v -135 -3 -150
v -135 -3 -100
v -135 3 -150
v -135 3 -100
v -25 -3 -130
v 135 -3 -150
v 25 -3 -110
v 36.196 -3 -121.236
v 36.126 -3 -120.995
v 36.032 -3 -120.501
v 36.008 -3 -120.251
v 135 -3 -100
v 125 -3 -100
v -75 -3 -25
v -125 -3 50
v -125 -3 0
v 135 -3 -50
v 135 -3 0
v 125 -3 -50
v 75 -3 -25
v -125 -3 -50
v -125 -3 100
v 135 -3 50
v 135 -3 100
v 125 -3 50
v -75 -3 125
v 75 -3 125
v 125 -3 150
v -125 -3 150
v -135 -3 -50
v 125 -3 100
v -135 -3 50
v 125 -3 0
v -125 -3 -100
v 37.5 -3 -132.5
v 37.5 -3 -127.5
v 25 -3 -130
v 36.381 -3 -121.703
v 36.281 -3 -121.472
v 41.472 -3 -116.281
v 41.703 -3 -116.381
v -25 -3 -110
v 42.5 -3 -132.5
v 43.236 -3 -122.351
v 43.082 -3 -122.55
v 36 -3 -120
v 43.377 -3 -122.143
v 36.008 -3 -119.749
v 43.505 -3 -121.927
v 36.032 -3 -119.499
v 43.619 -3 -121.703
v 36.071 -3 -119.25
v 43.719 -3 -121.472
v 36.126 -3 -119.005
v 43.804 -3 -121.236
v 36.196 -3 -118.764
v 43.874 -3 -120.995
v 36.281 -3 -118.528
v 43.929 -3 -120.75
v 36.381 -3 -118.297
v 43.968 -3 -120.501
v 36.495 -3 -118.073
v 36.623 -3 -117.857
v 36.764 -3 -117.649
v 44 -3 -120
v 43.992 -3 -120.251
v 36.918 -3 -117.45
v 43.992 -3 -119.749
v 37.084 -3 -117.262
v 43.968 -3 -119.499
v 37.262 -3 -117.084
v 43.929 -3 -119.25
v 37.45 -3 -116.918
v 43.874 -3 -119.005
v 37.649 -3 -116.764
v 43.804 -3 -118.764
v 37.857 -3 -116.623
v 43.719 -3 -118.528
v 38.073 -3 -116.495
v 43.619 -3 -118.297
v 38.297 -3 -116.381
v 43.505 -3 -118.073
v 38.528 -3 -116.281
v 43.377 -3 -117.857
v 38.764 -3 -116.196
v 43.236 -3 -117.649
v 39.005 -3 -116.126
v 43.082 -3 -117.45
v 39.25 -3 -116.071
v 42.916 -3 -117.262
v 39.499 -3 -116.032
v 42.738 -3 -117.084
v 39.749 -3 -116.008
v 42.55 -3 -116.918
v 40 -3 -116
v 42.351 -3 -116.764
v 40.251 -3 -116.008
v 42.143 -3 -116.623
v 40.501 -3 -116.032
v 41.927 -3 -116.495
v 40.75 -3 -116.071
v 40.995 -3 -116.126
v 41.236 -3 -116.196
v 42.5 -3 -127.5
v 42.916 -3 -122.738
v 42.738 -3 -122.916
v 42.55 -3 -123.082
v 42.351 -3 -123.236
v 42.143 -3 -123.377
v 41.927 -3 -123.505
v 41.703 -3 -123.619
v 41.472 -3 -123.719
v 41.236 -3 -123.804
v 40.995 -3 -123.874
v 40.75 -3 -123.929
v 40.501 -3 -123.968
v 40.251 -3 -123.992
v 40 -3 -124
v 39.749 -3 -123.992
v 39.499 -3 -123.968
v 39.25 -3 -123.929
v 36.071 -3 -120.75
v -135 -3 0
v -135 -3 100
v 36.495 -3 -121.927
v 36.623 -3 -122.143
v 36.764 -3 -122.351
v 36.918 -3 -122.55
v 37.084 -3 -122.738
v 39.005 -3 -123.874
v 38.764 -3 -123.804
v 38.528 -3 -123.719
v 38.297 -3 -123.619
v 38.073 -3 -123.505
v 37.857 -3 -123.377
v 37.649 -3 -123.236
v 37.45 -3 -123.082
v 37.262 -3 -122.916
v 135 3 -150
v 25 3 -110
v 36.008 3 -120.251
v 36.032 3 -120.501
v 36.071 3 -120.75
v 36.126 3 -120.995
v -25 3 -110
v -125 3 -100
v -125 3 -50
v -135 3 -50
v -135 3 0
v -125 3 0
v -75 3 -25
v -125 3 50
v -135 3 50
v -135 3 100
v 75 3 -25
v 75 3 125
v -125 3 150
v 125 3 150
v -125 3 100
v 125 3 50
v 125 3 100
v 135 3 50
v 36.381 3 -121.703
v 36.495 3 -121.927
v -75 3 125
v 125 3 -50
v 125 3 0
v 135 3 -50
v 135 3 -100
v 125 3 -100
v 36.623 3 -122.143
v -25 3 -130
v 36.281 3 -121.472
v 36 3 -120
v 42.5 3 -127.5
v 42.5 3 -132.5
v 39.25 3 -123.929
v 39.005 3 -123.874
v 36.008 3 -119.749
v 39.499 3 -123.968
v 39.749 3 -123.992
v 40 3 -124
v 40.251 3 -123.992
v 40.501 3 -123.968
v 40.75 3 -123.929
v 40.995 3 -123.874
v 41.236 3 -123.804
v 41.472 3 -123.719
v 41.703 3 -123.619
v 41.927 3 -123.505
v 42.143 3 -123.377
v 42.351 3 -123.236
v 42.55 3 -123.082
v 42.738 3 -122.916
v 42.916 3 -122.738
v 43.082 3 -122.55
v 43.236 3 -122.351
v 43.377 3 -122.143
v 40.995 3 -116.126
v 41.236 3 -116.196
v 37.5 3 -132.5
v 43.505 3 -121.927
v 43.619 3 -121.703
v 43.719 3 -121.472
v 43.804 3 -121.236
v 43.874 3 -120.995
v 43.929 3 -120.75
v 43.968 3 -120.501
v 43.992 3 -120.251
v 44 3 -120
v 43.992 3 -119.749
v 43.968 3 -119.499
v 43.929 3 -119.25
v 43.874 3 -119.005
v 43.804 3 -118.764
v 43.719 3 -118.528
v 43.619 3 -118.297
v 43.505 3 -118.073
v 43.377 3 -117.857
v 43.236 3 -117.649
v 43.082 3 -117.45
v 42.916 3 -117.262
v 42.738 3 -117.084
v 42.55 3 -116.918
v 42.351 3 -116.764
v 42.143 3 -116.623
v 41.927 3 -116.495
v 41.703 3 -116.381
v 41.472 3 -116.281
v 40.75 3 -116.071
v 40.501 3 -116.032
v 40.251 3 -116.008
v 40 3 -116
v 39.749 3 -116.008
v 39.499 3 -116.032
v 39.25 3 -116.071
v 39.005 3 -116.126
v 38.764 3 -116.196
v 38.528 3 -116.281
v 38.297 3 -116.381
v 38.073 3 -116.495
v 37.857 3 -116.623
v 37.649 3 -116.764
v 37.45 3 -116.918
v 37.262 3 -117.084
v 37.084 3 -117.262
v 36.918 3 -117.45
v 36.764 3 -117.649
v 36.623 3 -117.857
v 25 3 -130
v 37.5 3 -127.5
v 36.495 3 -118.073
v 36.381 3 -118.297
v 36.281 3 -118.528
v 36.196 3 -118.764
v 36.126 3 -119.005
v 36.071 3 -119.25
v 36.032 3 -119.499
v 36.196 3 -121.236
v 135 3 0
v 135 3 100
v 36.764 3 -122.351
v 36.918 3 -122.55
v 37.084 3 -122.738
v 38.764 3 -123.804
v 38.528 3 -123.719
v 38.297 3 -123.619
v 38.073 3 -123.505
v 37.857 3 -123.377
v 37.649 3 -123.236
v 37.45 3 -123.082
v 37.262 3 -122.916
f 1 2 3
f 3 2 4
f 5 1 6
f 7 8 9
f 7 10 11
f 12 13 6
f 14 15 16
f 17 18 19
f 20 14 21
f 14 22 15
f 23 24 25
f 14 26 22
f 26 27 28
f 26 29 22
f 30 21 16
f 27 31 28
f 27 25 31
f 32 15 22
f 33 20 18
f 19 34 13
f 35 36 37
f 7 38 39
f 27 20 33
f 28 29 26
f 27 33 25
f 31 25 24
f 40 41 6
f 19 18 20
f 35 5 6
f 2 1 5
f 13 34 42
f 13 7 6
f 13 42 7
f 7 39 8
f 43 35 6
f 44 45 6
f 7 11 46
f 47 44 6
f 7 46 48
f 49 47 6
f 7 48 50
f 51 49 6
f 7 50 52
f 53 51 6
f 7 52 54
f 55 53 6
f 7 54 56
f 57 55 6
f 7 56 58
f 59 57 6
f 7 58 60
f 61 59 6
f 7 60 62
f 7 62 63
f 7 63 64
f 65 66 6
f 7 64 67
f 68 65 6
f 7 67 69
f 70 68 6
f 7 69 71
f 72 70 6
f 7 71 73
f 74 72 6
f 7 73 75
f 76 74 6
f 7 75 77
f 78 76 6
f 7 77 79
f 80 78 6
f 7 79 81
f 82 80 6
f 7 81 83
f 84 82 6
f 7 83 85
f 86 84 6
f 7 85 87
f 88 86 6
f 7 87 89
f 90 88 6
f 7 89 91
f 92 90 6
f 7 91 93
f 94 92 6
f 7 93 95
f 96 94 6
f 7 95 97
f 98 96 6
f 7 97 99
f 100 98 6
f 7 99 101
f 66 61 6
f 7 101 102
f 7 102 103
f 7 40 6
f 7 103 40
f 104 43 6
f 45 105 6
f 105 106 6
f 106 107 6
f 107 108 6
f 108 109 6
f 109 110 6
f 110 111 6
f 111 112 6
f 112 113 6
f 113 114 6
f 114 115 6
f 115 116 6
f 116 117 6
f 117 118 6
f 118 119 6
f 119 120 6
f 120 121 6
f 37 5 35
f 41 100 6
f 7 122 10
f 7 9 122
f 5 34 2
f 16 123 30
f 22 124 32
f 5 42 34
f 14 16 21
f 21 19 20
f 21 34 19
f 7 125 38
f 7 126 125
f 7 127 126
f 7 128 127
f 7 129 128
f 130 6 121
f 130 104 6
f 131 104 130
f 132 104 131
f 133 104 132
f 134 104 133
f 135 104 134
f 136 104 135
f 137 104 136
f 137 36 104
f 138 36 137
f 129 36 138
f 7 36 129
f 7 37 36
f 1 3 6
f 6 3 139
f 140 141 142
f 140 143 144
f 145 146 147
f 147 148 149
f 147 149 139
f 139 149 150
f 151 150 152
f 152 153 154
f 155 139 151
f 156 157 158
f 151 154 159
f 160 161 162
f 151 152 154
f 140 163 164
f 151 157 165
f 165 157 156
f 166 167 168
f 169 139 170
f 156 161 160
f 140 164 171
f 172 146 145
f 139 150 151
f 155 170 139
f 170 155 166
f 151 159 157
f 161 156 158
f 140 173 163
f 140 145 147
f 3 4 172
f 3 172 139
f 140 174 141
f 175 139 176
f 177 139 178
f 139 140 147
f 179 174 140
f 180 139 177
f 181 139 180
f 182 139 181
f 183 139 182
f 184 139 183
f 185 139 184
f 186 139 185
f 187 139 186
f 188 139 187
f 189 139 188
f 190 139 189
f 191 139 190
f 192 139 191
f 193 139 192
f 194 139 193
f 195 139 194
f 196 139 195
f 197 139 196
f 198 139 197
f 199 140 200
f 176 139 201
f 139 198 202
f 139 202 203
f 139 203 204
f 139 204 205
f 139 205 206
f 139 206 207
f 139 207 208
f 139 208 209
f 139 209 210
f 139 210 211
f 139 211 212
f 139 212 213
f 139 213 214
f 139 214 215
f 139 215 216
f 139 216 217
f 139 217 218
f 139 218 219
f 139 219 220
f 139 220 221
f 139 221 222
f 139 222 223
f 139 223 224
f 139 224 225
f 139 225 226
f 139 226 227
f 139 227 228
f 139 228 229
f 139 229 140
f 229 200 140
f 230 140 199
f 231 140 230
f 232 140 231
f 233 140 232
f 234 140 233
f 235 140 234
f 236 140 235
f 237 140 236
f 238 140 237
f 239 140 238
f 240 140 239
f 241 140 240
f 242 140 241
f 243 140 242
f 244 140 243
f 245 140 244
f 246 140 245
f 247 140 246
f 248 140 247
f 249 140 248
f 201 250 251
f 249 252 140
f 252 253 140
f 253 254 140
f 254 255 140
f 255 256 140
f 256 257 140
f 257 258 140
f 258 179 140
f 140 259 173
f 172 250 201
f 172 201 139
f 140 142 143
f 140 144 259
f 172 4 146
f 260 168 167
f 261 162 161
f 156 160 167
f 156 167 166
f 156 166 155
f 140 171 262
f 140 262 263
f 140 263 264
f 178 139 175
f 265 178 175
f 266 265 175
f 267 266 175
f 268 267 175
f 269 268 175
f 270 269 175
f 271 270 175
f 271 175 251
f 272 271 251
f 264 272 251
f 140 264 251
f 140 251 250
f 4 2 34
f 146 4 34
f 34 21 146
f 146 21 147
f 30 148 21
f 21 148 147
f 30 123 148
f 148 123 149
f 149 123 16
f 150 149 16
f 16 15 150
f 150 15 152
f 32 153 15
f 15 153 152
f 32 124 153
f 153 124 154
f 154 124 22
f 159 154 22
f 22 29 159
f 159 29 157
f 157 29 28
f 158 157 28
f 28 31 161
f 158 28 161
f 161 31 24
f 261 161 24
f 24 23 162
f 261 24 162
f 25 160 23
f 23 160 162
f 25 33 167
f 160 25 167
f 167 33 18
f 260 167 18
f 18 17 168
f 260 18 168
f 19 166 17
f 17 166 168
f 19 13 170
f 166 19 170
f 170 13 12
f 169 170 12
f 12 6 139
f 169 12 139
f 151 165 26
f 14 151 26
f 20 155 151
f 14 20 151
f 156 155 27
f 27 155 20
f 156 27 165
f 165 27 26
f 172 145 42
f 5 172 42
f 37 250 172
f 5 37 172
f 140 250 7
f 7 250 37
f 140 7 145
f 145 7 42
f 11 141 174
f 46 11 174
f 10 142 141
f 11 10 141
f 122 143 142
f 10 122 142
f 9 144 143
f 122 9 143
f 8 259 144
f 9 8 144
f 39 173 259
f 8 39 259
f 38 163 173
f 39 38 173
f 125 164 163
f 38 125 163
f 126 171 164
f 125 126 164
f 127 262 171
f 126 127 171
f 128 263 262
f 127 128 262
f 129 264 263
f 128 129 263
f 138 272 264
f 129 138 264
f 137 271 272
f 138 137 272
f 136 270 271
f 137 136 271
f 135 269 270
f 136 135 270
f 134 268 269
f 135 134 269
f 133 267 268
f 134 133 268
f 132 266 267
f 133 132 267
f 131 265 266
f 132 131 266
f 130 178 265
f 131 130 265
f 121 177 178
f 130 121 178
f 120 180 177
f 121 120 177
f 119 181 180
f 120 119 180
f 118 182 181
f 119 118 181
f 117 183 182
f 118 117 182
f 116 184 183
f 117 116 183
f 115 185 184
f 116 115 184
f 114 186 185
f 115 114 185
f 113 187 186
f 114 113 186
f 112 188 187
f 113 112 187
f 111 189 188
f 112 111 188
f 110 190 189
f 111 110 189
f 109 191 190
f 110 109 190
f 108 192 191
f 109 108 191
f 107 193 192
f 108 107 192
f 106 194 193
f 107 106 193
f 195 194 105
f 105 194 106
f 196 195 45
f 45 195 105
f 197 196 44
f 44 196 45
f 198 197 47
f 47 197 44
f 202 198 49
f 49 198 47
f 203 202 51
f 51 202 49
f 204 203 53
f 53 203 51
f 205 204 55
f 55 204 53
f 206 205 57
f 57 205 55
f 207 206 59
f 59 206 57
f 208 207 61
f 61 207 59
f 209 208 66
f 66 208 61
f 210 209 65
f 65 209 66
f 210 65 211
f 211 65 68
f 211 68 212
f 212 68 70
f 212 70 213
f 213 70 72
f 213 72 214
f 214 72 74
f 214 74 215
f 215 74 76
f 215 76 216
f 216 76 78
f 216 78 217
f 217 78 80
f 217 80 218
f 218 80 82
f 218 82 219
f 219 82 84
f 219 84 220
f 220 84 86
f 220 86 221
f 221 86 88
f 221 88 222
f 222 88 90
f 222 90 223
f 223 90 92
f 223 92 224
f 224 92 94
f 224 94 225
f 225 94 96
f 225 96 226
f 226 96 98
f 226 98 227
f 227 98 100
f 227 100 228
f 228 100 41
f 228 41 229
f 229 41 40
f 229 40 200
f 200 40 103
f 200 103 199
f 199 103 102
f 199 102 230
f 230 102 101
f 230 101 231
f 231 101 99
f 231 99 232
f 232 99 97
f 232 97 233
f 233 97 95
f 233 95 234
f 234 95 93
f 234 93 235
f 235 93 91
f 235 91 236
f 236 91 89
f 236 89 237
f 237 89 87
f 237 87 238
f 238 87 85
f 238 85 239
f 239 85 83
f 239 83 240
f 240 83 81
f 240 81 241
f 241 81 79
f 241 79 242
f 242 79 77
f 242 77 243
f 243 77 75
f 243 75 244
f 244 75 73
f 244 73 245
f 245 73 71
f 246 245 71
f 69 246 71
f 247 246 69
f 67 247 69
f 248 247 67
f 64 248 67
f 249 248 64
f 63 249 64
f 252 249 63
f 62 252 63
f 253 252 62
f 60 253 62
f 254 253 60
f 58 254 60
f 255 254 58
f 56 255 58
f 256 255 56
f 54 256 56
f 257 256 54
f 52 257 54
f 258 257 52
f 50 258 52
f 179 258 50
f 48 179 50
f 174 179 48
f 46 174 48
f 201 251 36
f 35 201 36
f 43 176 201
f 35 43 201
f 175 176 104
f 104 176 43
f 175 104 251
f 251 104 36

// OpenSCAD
/**
El volumen interno de los chasis(descontando los salientes de las pestañas de encaje) es de 25x25cm, con 30cm de altura.

Las carcasas de metracrilato se suelen hacer con metracrilato de 6mm de grosor,
*/

//Variables de parametrización
h = 300; //alto
w = 250; //ancho
t = 6;	//Grosor


difference() {  

union(){
	cube([w,t,h],center=true);//Frente
	anclaje();//Pestañas de anclaje

}

//Display

rotate([90,0,0])  
	translate([40,-120,-10])
		cylinder(r=4, h=20, $fn=100); 

translate([0,0,-120])
	cube([50,60,20],center=true);

translate([40,0,-130])
	cube([5,10,5],center=true);


//Ventana
translate([0,0,50])
	cube([150,60,150],center=true);
}

module anclaje(){
	n = (h/50)/2; 	//Calculo del numero de pestañas
	for (i=[0:n-1]) {  
		translate([w/2,0,-w/2+i*100])  
			cube([20,6,50],center=true);
	
		translate([-w/2,0,-w/2+i*100])  
			cube([20,6,50],center=true);
	}
}
